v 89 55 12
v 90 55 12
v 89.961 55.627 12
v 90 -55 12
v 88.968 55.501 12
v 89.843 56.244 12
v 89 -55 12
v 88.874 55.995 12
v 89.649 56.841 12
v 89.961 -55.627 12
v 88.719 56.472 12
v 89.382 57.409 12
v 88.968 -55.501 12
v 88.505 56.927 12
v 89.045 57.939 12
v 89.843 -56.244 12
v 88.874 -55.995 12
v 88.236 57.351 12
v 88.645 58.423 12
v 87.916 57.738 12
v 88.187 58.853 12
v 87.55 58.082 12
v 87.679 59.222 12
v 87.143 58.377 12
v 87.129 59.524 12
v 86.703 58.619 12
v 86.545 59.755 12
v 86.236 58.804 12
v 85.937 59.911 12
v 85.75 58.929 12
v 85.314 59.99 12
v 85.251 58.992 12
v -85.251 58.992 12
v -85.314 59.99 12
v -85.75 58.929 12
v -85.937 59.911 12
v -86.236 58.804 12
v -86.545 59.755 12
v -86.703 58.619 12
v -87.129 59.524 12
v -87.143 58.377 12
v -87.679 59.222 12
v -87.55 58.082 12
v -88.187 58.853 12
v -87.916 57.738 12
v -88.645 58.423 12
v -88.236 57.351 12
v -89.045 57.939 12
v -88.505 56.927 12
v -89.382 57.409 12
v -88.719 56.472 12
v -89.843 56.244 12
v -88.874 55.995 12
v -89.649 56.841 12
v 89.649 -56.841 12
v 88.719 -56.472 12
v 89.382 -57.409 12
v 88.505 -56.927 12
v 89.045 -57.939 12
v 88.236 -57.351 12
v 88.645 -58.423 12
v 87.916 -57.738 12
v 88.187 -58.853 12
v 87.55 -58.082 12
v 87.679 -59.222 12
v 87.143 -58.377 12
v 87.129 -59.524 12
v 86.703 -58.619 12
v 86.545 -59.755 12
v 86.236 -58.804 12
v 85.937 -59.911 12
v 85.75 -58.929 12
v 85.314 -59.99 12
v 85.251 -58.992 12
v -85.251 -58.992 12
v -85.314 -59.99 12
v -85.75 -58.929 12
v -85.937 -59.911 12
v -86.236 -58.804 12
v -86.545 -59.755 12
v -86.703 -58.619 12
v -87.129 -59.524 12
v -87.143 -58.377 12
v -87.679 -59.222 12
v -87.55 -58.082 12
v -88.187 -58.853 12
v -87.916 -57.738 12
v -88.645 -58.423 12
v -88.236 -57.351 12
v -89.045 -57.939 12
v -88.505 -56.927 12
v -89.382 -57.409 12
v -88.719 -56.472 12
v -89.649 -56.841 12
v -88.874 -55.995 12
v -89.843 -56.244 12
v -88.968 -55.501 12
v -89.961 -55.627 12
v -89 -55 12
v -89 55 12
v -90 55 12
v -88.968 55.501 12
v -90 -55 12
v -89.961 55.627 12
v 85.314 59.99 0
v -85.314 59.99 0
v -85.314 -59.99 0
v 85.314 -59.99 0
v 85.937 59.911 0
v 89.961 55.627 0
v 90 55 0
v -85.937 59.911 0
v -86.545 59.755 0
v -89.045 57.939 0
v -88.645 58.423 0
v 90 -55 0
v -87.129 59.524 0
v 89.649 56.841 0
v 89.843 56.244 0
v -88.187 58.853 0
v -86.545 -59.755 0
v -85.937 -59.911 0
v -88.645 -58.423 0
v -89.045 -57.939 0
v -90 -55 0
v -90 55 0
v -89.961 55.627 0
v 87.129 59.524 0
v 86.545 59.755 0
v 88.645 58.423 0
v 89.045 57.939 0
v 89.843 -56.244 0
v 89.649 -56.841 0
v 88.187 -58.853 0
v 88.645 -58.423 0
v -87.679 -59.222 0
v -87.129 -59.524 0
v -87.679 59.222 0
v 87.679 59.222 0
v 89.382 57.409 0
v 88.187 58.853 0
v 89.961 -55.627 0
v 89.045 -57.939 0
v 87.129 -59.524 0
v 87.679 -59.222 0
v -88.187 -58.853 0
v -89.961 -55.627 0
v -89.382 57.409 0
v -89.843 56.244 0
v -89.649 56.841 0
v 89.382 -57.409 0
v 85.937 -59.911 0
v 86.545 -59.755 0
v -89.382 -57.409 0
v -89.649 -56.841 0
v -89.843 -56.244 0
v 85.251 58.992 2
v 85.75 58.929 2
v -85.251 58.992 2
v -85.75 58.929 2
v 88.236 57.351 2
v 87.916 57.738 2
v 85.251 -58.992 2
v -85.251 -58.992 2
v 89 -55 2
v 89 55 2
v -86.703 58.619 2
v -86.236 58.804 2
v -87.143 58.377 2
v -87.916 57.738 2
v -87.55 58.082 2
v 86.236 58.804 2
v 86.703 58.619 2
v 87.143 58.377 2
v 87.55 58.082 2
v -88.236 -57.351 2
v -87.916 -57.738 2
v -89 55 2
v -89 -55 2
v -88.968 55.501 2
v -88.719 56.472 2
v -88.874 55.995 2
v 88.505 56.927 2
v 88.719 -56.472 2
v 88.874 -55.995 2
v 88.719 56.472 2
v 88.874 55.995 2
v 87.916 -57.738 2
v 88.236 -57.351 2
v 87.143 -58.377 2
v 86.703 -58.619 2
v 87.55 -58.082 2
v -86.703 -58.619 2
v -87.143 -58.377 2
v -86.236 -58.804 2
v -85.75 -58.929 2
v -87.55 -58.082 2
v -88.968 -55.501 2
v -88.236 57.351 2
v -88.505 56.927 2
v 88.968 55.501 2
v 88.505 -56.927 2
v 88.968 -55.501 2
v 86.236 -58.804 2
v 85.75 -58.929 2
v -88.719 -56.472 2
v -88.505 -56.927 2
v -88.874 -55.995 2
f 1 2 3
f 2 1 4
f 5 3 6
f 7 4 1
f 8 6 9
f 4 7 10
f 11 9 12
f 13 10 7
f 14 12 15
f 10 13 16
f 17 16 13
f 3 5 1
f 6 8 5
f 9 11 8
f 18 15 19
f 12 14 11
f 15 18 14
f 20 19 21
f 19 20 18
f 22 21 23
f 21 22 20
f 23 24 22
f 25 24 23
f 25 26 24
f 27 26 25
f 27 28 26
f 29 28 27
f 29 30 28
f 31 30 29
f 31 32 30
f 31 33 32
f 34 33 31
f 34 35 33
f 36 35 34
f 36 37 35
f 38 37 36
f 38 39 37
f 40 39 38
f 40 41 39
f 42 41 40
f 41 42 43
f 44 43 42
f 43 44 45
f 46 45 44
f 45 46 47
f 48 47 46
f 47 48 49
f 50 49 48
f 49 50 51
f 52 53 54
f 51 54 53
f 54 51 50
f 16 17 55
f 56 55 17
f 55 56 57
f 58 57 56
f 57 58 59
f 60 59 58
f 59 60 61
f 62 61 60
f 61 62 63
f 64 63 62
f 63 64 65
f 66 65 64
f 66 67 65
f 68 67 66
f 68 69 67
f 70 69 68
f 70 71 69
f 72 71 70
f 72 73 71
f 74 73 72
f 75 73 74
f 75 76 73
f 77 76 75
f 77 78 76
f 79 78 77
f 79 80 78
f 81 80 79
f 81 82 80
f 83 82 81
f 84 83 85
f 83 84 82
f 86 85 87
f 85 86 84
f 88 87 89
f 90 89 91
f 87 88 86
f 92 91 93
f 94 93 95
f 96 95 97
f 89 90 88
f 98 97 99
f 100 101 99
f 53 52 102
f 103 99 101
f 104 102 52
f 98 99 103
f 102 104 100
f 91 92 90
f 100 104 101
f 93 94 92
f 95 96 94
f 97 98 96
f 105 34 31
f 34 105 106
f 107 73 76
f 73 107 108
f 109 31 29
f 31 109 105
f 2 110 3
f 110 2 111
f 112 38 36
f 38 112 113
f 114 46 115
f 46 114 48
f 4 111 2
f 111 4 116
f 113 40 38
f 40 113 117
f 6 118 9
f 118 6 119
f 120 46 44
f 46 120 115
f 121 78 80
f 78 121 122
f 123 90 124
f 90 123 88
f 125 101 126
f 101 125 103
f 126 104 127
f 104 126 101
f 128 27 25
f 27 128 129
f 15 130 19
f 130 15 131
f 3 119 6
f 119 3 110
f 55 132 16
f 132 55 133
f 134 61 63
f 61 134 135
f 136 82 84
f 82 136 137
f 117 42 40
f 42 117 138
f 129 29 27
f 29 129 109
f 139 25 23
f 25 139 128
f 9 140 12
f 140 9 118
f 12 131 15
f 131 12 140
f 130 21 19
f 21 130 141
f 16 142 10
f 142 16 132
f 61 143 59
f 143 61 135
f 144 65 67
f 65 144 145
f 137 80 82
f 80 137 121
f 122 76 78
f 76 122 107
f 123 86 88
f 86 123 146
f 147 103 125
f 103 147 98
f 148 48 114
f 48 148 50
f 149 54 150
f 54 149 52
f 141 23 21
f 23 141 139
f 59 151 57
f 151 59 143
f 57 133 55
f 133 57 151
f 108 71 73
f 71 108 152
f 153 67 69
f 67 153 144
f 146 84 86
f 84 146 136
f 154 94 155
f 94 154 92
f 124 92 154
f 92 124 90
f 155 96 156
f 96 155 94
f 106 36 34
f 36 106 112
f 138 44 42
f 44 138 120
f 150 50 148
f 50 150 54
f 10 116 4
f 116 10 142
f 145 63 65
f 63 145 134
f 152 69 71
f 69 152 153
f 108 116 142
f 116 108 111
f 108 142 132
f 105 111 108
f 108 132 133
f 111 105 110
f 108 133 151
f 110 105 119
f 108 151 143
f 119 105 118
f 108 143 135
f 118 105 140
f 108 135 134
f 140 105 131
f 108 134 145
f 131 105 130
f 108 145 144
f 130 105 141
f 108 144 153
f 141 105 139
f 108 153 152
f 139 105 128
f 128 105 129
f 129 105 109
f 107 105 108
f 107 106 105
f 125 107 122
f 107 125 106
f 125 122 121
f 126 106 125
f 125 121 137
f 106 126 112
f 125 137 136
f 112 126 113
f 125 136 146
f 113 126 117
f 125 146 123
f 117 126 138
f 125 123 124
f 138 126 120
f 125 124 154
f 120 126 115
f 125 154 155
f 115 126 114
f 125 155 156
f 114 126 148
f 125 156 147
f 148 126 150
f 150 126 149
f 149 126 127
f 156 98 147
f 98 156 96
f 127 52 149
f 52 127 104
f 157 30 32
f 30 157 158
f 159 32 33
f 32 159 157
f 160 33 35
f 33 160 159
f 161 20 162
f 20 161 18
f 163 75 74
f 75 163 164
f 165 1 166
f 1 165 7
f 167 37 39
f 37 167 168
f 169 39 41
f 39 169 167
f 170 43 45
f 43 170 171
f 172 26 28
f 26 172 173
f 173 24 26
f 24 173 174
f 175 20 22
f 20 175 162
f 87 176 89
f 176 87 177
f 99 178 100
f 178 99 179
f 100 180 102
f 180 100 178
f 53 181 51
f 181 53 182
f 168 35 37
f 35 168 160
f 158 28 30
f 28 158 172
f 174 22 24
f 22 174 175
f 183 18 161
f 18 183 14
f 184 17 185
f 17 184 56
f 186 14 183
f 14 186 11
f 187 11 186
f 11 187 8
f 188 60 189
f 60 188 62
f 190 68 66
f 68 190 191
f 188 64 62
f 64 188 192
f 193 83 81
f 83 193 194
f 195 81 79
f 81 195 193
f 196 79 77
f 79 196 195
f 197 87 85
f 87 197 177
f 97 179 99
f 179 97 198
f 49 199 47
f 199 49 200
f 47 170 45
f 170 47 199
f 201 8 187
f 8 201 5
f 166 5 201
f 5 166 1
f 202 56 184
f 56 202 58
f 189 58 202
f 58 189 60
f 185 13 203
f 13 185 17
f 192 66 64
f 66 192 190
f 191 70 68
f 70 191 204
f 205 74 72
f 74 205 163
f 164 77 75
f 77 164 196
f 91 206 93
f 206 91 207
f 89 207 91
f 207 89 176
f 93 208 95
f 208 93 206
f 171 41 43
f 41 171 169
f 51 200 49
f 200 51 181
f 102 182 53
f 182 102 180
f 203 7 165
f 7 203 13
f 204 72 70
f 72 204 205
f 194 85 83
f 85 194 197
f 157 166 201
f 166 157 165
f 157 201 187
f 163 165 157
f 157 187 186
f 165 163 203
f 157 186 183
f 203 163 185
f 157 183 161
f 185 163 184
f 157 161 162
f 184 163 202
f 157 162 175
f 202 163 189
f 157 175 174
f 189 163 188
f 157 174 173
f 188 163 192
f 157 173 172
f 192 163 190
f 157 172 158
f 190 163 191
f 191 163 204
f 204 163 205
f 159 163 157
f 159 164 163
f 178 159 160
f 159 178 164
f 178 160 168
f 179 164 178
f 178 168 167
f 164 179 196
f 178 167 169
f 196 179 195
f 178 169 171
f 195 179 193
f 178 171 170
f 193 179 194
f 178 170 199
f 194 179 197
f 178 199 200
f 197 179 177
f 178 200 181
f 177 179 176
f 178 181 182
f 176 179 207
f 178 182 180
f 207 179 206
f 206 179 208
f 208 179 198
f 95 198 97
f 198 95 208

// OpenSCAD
$fn = 50;


difference() {
	union() {
		hull() {
			translate(v = [-85.0000000000, 55.0000000000, 0]) {
				cylinder(h = 12, r = 5);
			}
			translate(v = [85.0000000000, 55.0000000000, 0]) {
				cylinder(h = 12, r = 5);
			}
			translate(v = [-85.0000000000, -55.0000000000, 0]) {
				cylinder(h = 12, r = 5);
			}
			translate(v = [85.0000000000, -55.0000000000, 0]) {
				cylinder(h = 12, r = 5);
			}
		}
	}
	union() {
		translate(v = [0, 0, 2]) {
			hull() {
				translate(v = [-85.0000000000, 55.0000000000, 0]) {
					cylinder(h = 10, r = 4);
				}
				translate(v = [85.0000000000, 55.0000000000, 0]) {
					cylinder(h = 10, r = 4);
				}
				translate(v = [-85.0000000000, -55.0000000000, 0]) {
					cylinder(h = 10, r = 4);
				}
				translate(v = [85.0000000000, -55.0000000000, 0]) {
					cylinder(h = 10, r = 4);
				}
			}
		}
	}
}
